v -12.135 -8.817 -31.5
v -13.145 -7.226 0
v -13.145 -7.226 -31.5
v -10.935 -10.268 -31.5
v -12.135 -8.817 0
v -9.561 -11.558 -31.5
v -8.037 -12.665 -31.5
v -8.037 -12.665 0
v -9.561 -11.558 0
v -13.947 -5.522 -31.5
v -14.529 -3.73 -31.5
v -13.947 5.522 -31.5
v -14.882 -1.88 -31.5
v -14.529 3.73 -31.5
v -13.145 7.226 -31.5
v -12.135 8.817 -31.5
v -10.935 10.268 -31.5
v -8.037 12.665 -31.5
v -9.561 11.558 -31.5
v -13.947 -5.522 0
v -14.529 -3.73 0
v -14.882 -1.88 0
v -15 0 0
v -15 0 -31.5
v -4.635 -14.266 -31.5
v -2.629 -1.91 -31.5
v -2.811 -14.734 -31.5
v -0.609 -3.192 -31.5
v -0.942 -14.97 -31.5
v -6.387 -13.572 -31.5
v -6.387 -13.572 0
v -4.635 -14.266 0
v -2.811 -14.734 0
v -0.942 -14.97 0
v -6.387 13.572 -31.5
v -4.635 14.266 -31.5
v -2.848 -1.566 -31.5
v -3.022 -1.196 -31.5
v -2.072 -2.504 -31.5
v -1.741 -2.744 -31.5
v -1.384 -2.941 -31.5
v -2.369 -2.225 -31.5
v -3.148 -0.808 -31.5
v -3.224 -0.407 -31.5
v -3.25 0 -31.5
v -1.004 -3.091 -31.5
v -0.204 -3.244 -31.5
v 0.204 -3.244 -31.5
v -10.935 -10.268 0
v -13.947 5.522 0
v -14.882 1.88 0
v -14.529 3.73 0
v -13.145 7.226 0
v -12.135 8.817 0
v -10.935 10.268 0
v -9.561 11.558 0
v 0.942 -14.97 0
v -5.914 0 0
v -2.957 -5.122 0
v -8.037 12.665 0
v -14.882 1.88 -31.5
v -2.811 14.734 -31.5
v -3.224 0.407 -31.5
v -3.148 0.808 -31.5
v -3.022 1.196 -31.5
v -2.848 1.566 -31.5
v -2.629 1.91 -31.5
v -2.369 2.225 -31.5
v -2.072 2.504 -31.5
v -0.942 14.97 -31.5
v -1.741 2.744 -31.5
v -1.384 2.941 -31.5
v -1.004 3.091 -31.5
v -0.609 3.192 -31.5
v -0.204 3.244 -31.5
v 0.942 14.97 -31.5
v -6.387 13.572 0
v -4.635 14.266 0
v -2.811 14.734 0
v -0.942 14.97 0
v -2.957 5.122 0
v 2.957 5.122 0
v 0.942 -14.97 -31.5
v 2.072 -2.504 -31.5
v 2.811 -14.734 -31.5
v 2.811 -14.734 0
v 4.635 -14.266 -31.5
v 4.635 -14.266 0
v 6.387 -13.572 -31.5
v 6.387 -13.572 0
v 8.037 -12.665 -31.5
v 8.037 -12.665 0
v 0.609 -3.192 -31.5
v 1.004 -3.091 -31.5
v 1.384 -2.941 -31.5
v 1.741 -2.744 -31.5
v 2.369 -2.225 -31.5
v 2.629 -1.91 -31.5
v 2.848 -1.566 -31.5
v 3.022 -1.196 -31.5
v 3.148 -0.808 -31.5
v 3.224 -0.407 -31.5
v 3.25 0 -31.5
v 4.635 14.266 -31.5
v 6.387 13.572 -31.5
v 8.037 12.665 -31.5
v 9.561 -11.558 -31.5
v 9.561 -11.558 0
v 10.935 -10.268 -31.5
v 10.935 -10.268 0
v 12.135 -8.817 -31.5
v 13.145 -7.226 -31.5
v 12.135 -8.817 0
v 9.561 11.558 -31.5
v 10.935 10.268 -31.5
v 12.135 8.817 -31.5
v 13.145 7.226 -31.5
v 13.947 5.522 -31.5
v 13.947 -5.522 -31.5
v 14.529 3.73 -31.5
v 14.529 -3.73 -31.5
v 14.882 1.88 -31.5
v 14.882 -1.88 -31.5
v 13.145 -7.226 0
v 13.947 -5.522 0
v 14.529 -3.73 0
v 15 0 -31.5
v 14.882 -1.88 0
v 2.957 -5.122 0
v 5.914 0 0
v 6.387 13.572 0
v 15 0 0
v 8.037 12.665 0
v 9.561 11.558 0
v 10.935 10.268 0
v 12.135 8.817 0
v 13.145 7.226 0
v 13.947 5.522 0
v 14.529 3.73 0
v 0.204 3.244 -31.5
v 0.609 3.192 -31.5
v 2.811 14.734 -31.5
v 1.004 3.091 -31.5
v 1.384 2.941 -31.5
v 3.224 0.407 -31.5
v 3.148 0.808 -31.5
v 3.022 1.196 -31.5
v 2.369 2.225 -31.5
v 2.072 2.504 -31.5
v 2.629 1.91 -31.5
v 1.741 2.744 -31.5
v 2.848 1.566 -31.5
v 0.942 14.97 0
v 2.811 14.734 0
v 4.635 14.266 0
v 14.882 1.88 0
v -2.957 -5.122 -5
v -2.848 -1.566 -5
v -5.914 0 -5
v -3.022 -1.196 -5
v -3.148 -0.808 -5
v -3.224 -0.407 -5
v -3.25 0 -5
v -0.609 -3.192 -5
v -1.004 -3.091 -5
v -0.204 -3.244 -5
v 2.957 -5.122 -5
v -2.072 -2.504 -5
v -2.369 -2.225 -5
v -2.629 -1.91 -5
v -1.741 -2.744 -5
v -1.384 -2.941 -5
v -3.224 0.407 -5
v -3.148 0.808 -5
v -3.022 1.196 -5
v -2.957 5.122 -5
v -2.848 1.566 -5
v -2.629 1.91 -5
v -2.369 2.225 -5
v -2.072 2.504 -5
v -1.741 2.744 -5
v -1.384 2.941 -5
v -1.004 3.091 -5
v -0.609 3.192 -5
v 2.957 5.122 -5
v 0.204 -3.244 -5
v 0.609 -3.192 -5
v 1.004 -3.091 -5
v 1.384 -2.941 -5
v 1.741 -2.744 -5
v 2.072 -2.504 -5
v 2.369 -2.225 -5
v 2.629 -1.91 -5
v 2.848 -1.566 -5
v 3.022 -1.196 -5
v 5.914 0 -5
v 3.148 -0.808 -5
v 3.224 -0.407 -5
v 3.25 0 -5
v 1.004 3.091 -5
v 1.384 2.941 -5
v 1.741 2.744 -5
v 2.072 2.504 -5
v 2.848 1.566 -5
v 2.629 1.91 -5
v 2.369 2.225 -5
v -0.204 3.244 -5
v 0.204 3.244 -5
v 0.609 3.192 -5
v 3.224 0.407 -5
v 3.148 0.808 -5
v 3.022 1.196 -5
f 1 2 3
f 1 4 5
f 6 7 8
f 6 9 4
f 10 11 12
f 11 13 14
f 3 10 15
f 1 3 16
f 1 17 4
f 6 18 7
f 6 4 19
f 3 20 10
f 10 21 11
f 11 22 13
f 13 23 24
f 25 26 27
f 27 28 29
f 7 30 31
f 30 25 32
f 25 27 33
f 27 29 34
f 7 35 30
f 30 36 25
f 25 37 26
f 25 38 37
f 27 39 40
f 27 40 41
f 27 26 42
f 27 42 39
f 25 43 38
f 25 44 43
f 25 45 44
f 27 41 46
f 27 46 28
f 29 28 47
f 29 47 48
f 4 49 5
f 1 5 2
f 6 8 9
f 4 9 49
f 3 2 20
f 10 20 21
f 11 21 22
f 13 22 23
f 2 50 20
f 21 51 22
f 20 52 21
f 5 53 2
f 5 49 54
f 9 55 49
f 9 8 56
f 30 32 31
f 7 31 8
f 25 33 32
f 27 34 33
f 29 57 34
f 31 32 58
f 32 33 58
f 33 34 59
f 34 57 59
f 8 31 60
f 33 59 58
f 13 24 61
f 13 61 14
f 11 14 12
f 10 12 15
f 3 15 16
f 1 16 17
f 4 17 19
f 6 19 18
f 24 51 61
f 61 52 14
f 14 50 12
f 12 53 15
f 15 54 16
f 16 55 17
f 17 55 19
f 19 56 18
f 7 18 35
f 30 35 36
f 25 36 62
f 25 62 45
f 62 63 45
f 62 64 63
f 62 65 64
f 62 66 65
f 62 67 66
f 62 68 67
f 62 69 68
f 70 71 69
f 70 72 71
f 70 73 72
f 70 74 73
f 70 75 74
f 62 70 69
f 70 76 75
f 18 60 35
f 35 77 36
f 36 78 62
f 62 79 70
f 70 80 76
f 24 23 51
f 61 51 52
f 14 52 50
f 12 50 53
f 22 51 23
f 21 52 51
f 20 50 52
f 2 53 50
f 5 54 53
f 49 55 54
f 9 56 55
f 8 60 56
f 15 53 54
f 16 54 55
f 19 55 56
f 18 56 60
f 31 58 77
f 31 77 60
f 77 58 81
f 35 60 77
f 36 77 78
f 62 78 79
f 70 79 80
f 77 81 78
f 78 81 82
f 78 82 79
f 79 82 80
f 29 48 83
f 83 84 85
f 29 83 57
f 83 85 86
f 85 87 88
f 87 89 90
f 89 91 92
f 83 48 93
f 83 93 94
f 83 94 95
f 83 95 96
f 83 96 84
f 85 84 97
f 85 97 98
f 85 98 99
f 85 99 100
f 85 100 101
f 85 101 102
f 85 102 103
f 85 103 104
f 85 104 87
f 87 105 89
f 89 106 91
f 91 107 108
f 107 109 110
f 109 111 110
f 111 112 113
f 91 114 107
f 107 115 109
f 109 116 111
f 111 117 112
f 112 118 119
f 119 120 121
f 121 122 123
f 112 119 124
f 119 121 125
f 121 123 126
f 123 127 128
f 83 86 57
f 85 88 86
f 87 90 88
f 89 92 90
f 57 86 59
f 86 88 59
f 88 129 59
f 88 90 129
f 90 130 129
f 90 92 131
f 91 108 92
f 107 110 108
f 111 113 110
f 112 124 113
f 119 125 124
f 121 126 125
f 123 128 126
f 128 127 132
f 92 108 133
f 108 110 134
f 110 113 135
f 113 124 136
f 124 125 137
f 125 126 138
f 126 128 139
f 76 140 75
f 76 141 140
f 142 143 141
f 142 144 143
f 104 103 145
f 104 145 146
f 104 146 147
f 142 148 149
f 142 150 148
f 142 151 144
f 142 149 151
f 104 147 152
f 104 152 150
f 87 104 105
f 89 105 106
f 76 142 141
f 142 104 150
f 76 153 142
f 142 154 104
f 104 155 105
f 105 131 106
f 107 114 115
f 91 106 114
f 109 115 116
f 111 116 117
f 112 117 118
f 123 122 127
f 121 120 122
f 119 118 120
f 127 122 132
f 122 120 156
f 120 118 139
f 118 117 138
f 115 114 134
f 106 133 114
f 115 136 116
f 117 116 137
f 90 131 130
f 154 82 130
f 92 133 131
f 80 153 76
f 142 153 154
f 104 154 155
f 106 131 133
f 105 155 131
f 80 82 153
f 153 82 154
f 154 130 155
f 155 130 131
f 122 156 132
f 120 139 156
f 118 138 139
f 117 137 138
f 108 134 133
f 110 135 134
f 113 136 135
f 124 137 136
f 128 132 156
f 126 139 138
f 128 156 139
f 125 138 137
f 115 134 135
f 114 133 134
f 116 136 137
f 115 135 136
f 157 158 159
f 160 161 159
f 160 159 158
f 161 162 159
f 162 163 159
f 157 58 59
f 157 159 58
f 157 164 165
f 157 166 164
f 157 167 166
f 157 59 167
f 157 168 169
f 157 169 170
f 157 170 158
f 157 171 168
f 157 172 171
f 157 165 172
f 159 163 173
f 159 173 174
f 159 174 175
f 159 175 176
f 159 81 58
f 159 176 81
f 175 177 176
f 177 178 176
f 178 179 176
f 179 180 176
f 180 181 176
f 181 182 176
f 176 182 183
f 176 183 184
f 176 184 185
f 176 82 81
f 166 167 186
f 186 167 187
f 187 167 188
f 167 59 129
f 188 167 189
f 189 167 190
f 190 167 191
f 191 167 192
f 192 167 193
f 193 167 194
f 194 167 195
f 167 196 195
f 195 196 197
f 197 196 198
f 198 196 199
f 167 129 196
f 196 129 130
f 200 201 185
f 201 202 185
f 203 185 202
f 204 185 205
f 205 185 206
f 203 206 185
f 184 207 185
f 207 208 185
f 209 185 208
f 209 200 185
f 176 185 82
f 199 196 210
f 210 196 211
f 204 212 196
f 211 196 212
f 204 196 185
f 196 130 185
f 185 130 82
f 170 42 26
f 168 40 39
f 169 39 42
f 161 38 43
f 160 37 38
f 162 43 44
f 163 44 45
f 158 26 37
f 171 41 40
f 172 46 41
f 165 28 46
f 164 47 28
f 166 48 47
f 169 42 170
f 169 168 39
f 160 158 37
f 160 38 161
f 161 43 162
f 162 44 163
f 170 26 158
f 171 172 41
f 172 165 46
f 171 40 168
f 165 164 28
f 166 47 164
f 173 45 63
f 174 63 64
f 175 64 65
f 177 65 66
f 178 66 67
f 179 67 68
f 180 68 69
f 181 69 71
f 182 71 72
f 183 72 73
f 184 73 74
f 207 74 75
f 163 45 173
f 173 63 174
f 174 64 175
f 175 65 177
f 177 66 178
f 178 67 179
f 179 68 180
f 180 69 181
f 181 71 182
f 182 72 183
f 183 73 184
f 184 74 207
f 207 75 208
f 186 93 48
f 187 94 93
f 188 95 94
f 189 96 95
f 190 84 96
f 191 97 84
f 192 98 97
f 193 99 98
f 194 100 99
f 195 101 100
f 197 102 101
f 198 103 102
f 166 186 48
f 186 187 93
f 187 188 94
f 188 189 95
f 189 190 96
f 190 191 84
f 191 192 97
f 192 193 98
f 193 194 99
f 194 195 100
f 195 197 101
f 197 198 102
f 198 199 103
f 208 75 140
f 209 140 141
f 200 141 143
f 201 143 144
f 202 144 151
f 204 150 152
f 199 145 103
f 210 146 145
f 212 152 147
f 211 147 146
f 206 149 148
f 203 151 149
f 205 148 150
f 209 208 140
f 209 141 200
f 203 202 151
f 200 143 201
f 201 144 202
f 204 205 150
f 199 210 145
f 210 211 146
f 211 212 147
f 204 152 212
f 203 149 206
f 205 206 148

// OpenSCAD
$fn = 50;

difference() {
	union() {
		translate(v = [0, 0, -31.5]) {
			cylinder(h = 31.5, r = 15.0);
		}
		#translate(v = [0, 0, -33.0]) {
			cylinder(h = 33, r = 2.875);
		}
	}
	union() {
		translate(v = [0, 0, 0]) {
			rotate(a = [0, 0, 0]) {
				difference() {
					union() {
						translate(v = [0, 0, -5]) {
							linear_extrude(height = 5) {
								polygon(points = [[5.914249999999999, 0.0], [2.957125, 5.1218907443321156], [-2.9571249999999982, 5.1218907443321156], [-5.914249999999999, 7.242867331857232e-16], [-2.9571250000000022, -5.121890744332115], [2.9571249999999956, -5.121890744332118]]);
							}
						}
					}
					union();
				}
			}
		}
		#translate(v = [0, 0, -100.0]) {
			cylinder(h = 200, r = 3.25);
		}
	}
}
